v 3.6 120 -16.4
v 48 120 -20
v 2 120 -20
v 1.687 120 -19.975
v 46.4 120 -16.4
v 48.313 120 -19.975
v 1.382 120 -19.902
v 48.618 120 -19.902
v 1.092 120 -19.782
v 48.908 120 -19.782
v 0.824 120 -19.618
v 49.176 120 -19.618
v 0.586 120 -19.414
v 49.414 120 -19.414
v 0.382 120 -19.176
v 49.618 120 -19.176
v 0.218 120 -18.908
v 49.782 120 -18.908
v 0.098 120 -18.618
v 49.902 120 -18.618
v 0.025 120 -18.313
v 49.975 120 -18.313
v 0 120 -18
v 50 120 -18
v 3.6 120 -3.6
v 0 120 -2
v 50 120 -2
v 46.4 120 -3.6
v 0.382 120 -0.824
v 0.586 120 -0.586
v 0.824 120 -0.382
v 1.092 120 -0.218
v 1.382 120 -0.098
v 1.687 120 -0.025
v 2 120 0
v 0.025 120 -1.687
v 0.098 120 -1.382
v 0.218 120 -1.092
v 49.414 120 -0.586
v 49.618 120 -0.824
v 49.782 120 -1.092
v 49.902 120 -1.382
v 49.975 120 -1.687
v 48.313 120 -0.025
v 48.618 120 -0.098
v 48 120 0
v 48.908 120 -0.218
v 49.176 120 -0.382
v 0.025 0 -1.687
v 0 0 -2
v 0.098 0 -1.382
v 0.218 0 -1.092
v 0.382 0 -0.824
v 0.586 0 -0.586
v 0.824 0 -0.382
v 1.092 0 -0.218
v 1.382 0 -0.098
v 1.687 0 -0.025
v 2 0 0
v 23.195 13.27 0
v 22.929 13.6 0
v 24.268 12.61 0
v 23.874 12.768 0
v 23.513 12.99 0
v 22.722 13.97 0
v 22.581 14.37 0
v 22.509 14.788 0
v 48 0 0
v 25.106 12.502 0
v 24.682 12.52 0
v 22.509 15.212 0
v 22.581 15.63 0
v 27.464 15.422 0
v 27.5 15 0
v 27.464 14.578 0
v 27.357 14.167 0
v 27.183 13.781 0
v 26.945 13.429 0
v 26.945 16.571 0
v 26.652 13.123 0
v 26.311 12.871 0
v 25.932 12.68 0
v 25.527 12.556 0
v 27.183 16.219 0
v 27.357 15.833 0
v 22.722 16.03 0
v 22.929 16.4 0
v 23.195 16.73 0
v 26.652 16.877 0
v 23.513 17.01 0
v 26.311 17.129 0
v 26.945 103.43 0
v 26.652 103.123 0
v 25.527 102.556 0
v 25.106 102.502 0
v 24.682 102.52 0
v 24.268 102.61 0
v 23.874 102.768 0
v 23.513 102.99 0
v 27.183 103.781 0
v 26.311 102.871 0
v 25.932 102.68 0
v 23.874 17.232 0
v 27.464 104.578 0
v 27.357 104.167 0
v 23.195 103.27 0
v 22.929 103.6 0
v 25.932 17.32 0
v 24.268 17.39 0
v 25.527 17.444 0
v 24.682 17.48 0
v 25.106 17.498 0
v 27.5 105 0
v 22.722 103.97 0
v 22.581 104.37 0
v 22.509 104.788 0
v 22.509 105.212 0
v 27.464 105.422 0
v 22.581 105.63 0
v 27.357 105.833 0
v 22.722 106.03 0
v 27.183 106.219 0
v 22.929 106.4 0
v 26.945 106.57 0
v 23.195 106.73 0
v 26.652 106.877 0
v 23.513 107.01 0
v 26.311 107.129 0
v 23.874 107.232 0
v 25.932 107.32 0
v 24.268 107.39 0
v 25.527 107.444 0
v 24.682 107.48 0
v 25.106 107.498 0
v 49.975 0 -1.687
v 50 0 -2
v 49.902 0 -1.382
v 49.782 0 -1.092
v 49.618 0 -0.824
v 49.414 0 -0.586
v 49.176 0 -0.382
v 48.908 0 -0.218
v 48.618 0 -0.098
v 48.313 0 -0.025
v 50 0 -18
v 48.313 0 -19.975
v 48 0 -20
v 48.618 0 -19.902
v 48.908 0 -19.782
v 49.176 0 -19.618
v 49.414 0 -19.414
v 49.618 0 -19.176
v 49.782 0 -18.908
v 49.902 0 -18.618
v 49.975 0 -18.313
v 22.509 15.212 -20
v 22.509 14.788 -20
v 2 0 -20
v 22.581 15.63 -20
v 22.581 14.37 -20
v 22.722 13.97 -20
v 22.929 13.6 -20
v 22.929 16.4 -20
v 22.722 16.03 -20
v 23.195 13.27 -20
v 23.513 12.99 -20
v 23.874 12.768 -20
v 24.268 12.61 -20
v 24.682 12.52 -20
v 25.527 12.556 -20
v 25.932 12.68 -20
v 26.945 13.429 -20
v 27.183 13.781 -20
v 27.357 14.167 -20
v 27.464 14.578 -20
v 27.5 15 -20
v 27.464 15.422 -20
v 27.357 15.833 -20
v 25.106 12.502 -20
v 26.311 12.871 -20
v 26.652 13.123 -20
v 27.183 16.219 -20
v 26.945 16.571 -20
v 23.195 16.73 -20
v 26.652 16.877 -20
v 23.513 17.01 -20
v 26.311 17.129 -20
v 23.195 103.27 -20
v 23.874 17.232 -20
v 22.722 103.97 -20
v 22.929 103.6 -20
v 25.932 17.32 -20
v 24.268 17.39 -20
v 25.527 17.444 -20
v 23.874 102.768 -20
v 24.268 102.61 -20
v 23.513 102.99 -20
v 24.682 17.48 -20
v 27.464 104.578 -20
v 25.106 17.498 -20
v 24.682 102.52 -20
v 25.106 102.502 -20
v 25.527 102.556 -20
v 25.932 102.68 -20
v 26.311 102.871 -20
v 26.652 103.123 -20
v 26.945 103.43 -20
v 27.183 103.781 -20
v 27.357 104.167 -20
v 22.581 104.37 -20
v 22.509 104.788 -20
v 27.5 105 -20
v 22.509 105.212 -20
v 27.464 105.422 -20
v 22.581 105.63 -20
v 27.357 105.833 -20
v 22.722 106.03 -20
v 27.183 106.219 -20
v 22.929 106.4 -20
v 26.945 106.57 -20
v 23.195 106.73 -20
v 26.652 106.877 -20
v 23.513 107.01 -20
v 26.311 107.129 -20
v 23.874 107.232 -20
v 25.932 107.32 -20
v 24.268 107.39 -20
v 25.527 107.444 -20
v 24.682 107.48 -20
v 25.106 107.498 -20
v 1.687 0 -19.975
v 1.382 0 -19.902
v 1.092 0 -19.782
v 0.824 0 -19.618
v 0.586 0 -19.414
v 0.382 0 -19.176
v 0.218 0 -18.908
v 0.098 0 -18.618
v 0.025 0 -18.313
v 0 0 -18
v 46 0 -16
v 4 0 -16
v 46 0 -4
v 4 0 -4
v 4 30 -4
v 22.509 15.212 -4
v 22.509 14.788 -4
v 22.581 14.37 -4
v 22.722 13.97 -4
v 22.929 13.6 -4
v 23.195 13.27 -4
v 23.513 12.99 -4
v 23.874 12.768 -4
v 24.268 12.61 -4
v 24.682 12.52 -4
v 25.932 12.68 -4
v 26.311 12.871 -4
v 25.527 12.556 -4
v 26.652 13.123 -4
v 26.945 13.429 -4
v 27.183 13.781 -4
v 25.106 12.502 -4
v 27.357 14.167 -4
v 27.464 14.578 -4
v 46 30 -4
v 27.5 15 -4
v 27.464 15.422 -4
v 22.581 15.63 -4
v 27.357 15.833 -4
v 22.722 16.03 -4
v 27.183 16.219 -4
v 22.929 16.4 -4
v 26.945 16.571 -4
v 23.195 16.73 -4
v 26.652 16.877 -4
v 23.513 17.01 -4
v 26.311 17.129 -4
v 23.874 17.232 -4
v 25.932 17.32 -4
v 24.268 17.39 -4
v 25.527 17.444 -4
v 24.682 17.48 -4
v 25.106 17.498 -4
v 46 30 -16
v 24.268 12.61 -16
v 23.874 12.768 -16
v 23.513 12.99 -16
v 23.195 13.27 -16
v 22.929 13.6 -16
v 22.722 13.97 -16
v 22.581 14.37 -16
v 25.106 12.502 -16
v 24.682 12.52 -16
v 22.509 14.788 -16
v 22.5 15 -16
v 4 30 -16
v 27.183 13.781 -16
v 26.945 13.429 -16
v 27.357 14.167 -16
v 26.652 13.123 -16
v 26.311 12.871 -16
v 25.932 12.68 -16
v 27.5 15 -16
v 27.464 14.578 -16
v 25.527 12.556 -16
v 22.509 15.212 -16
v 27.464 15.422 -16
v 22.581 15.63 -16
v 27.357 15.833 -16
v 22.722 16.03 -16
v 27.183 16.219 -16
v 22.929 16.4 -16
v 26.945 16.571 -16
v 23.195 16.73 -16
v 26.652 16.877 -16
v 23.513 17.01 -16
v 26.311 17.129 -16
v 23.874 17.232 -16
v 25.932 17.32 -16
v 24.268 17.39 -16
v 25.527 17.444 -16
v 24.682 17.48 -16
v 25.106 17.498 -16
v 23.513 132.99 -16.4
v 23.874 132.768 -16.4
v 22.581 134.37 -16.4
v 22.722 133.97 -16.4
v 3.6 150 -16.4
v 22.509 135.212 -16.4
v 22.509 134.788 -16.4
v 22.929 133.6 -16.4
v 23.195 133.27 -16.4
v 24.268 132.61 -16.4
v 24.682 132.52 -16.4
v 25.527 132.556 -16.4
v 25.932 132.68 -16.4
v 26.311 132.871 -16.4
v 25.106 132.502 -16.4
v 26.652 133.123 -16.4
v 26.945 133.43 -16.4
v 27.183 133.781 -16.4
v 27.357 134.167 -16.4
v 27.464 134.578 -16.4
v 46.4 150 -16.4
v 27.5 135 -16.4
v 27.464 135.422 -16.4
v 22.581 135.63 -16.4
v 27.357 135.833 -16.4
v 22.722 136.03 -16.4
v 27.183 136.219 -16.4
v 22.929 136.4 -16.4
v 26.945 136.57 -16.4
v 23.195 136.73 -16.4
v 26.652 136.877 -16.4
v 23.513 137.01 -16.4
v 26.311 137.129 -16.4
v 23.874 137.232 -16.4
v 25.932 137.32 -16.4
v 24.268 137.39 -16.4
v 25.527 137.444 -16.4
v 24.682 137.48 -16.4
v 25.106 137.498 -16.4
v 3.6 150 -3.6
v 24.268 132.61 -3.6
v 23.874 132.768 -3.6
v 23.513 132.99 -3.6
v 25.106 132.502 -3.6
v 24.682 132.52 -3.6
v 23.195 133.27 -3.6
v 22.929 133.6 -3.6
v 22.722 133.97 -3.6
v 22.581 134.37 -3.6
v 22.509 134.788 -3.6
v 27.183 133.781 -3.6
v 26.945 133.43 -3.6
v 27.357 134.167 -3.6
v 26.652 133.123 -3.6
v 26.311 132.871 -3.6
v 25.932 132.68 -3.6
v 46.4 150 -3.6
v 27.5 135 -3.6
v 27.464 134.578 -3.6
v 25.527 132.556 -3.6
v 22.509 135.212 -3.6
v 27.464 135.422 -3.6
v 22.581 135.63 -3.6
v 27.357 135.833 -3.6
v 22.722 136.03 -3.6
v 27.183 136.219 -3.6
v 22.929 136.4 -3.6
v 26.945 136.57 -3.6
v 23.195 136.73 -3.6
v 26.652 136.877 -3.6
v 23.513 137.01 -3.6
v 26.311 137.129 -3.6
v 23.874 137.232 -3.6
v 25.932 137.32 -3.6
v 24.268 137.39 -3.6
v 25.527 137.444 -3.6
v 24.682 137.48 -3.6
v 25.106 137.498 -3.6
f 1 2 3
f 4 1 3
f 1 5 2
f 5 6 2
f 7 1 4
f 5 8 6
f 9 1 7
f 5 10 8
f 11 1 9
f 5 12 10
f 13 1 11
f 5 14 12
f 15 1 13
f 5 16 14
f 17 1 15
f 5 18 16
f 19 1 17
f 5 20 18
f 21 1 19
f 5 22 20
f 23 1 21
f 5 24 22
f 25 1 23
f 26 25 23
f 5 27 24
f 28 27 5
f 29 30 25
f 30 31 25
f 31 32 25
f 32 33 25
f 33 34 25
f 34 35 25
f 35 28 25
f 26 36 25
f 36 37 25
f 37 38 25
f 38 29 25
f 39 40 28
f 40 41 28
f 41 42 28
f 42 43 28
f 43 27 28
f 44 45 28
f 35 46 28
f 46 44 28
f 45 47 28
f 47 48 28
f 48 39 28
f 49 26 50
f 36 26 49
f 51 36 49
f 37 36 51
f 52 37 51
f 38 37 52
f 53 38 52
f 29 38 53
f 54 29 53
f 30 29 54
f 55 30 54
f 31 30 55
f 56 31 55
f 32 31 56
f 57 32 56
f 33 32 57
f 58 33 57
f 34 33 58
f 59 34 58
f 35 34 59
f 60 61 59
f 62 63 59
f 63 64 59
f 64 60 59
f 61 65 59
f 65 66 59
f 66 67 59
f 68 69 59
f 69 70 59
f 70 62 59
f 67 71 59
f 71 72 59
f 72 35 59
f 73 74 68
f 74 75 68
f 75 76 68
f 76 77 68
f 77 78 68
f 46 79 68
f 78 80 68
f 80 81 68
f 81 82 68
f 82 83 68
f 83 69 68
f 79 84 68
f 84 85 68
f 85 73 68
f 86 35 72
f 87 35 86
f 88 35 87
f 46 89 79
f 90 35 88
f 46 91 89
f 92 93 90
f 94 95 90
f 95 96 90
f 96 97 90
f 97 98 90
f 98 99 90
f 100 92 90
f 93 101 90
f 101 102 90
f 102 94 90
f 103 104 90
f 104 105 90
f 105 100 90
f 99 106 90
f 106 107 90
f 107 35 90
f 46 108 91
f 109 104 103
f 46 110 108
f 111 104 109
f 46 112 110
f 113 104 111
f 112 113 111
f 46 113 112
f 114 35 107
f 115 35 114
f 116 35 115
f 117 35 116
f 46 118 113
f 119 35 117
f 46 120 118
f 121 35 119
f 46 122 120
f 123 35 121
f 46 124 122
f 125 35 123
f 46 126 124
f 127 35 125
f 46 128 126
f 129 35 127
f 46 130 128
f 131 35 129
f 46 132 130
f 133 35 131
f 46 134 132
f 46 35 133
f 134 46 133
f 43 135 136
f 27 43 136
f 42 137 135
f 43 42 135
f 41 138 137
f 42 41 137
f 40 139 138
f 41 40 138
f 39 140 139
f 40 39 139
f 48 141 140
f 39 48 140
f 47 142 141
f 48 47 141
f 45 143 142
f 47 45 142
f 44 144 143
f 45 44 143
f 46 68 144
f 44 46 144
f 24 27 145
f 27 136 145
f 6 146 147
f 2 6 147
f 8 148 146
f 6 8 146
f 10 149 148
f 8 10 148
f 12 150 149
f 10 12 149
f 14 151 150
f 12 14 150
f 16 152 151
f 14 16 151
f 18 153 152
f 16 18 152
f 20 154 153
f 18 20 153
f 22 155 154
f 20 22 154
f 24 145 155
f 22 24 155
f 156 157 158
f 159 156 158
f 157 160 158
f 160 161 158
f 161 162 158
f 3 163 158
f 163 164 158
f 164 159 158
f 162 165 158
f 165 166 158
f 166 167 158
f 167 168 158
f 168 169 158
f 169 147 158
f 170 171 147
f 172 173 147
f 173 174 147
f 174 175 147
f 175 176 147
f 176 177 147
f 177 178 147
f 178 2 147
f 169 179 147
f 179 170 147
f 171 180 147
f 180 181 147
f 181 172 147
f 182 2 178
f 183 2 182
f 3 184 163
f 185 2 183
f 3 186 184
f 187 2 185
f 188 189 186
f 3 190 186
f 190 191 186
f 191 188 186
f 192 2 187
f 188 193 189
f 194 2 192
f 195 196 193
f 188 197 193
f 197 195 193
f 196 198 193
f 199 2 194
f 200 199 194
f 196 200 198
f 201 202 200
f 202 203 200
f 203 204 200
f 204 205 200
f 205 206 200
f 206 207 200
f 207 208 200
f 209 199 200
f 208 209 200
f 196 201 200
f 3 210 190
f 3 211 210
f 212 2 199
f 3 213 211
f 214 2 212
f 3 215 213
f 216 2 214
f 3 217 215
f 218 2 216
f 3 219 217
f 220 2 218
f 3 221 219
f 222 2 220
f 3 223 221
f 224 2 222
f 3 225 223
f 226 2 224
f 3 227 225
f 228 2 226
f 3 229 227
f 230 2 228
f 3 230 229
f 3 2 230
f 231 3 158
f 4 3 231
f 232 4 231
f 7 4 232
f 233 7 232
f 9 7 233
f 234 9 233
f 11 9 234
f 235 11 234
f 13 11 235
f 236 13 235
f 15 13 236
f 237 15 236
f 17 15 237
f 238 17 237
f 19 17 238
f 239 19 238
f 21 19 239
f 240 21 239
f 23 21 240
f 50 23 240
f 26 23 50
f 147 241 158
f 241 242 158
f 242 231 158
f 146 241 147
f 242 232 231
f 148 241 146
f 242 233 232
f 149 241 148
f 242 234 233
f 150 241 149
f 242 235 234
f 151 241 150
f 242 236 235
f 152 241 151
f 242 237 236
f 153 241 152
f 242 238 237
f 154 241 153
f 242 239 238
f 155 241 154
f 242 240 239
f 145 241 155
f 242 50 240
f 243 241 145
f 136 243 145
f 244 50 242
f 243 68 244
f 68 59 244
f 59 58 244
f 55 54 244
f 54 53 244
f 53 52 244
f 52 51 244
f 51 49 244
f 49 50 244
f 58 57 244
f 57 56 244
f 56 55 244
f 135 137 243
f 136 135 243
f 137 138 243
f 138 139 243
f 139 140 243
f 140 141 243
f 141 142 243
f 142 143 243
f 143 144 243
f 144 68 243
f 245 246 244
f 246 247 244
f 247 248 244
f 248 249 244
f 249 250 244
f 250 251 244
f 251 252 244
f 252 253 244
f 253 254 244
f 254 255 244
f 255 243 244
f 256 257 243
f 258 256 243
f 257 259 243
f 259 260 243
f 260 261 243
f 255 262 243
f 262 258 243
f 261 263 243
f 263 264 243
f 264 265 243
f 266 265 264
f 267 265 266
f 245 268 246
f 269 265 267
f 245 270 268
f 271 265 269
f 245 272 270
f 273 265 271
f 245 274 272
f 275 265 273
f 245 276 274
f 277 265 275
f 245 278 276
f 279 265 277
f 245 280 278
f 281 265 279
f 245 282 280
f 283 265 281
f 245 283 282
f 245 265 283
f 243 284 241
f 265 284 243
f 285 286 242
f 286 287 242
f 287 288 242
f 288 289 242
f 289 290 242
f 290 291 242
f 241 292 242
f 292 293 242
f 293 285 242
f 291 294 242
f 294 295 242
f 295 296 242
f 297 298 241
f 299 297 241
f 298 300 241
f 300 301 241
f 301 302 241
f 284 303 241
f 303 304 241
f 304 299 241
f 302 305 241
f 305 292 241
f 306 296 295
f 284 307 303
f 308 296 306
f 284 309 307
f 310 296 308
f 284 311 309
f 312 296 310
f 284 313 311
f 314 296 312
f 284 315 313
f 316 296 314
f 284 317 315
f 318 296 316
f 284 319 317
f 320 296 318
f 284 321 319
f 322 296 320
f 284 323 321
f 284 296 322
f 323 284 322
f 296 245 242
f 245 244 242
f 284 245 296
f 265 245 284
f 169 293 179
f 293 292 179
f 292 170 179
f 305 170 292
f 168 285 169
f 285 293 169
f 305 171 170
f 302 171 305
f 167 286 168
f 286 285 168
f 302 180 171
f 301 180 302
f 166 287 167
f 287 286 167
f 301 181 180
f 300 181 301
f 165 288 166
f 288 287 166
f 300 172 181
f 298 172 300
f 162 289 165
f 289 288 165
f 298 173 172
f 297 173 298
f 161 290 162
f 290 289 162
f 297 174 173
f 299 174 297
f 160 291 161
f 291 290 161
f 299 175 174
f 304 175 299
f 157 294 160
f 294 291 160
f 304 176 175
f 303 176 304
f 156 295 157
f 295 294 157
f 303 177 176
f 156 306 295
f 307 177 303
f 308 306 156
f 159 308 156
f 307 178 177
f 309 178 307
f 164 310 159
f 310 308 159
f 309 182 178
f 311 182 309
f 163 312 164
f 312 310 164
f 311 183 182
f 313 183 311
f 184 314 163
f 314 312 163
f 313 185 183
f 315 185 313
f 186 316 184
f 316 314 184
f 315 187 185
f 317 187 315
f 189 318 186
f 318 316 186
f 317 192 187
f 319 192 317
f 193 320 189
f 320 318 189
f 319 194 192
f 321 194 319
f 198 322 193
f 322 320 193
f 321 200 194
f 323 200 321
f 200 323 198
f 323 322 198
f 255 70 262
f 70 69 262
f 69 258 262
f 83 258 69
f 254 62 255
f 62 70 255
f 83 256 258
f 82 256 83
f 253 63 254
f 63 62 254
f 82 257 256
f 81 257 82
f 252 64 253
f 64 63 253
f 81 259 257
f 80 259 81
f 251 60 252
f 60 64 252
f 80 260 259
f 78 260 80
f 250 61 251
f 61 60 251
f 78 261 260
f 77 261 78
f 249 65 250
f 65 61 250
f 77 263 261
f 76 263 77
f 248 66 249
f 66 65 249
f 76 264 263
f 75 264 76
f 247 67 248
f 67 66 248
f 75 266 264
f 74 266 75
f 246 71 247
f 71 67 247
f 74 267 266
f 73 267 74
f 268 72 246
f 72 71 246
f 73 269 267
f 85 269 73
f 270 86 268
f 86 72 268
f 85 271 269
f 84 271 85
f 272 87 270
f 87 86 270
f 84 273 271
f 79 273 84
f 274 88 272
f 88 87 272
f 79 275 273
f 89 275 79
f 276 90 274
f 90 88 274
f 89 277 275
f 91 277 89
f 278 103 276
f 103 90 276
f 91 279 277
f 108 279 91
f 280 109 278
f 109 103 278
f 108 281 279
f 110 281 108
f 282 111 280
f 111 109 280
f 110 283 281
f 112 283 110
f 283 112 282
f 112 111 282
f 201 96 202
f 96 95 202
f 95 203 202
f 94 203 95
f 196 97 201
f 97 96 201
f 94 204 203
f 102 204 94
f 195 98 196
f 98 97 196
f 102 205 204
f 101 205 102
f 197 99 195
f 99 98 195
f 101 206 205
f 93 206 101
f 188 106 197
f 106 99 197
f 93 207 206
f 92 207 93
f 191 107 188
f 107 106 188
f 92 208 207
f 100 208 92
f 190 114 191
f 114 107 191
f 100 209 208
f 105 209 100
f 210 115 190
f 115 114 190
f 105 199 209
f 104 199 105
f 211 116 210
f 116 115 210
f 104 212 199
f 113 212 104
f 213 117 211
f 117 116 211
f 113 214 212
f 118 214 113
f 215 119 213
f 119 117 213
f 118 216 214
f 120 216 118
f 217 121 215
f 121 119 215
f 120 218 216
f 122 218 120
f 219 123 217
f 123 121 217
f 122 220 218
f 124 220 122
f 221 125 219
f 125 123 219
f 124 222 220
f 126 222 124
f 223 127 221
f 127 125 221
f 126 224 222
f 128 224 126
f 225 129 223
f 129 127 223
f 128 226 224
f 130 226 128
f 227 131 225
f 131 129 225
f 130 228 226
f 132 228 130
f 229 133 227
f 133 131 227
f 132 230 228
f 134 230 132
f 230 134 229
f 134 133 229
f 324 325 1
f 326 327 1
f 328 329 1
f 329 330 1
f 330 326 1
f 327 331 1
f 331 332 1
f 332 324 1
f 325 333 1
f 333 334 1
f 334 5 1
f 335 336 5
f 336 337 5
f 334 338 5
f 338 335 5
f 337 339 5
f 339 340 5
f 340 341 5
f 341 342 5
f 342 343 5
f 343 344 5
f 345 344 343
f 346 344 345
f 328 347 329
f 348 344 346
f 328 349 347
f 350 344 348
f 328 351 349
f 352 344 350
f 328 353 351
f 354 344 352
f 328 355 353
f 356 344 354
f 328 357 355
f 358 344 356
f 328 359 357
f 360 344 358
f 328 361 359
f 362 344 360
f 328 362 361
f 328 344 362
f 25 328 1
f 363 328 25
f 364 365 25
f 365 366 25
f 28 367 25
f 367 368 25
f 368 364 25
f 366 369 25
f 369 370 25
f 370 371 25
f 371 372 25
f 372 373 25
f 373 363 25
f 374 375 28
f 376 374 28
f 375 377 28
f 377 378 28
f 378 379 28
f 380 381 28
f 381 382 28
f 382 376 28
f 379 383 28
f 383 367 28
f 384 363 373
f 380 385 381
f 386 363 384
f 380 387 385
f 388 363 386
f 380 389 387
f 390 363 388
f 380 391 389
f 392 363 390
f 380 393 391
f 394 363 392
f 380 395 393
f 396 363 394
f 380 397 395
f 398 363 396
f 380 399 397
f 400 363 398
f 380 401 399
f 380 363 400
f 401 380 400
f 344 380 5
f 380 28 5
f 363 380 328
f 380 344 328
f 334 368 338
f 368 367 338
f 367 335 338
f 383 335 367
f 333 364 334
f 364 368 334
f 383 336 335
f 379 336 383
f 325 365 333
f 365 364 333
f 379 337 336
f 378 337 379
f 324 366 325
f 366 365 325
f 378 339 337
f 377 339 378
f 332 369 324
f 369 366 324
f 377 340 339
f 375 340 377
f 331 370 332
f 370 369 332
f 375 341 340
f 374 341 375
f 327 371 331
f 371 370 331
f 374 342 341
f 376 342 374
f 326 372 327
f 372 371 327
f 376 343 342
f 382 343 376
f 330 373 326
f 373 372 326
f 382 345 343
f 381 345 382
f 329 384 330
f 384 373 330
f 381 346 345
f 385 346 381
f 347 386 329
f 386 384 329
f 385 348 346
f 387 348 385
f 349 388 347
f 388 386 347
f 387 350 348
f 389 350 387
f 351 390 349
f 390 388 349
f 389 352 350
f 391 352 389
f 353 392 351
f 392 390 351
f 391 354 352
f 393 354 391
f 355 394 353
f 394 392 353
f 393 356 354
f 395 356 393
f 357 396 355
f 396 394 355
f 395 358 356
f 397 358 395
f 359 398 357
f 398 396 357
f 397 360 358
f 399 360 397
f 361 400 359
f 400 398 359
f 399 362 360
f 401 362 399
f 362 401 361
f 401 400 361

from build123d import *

# Parameters (mm, degrees)
BOSS_EXTRUDE1_DEPTH = 120
SKETCH3_W           = 42
SKETCH3_H           = 12
CUT_EXTRUDE2_DEPTH  = 30
SKETCH6_R           = 2.5
CUT_EXTRUDE3_DEPTH  = 30
SKETCH8_W           = 42.8
SKETCH8_H           = 12.8
BOSS_EXTRUDE2_DEPTH = 30
SKETCH9_R           = 2.5
CUT_EXTRUDE4_DEPTH  = 30


with BuildPart() as part:
    # Sketch1 → Boss-Extrude1 (new body)
    with BuildSketch(Plane(origin=(0, 0, 0), x_dir=(1, 0, 0), z_dir=(0, 1, 0))):
        with BuildLine():
            Line((2, 0), (48, 0))
            ThreePointArc((48, 0), (49.414213562, 0.585786438), (50, 2))
            Line((50, 2), (50, 18))
            ThreePointArc((50, 18), (49.414213562, 19.414213562), (48, 20))
            Line((48, 20), (2, 20))
            ThreePointArc((2, 20), (0.585786438, 19.414213562), (0, 18))
            Line((0, 18), (0, 2))
            ThreePointArc((0, 2), (0.585786438, 0.585786438), (2, 0))
        make_face()
    extrude(amount=BOSS_EXTRUDE1_DEPTH)

    # Sketch3 → Cut-Extrude2 (cut)
    with BuildSketch(Plane.XZ):
        with Locations((25, -10)):
            Rectangle(SKETCH3_W, SKETCH3_H)
    extrude(amount=-CUT_EXTRUDE2_DEPTH, mode=Mode.SUBTRACT)

    # Sketch6 → Cut-Extrude3 (cut)
    with BuildSketch(Plane.XY):
        with Locations((25, 105)):
            Circle(SKETCH6_R)
        with Locations((25, 15)):
            Circle(SKETCH6_R)
    extrude(amount=-CUT_EXTRUDE3_DEPTH, mode=Mode.SUBTRACT)

    # Sketch8 → Boss-Extrude2 (add)
    with BuildSketch(Plane(origin=(0, 120, 0), x_dir=(1, 0, 0), z_dir=(0, 1, 0))):
        with Locations((25, 10)):
            Rectangle(SKETCH8_W, SKETCH8_H)
    extrude(amount=BOSS_EXTRUDE2_DEPTH)

    # Sketch9 → Cut-Extrude4 (cut)
    with BuildSketch(Plane.XY.offset(-3.6)):
        with Locations((25, 135)):
            Circle(SKETCH9_R)
    extrude(amount=-CUT_EXTRUDE4_DEPTH, mode=Mode.SUBTRACT)


solid = part.part
